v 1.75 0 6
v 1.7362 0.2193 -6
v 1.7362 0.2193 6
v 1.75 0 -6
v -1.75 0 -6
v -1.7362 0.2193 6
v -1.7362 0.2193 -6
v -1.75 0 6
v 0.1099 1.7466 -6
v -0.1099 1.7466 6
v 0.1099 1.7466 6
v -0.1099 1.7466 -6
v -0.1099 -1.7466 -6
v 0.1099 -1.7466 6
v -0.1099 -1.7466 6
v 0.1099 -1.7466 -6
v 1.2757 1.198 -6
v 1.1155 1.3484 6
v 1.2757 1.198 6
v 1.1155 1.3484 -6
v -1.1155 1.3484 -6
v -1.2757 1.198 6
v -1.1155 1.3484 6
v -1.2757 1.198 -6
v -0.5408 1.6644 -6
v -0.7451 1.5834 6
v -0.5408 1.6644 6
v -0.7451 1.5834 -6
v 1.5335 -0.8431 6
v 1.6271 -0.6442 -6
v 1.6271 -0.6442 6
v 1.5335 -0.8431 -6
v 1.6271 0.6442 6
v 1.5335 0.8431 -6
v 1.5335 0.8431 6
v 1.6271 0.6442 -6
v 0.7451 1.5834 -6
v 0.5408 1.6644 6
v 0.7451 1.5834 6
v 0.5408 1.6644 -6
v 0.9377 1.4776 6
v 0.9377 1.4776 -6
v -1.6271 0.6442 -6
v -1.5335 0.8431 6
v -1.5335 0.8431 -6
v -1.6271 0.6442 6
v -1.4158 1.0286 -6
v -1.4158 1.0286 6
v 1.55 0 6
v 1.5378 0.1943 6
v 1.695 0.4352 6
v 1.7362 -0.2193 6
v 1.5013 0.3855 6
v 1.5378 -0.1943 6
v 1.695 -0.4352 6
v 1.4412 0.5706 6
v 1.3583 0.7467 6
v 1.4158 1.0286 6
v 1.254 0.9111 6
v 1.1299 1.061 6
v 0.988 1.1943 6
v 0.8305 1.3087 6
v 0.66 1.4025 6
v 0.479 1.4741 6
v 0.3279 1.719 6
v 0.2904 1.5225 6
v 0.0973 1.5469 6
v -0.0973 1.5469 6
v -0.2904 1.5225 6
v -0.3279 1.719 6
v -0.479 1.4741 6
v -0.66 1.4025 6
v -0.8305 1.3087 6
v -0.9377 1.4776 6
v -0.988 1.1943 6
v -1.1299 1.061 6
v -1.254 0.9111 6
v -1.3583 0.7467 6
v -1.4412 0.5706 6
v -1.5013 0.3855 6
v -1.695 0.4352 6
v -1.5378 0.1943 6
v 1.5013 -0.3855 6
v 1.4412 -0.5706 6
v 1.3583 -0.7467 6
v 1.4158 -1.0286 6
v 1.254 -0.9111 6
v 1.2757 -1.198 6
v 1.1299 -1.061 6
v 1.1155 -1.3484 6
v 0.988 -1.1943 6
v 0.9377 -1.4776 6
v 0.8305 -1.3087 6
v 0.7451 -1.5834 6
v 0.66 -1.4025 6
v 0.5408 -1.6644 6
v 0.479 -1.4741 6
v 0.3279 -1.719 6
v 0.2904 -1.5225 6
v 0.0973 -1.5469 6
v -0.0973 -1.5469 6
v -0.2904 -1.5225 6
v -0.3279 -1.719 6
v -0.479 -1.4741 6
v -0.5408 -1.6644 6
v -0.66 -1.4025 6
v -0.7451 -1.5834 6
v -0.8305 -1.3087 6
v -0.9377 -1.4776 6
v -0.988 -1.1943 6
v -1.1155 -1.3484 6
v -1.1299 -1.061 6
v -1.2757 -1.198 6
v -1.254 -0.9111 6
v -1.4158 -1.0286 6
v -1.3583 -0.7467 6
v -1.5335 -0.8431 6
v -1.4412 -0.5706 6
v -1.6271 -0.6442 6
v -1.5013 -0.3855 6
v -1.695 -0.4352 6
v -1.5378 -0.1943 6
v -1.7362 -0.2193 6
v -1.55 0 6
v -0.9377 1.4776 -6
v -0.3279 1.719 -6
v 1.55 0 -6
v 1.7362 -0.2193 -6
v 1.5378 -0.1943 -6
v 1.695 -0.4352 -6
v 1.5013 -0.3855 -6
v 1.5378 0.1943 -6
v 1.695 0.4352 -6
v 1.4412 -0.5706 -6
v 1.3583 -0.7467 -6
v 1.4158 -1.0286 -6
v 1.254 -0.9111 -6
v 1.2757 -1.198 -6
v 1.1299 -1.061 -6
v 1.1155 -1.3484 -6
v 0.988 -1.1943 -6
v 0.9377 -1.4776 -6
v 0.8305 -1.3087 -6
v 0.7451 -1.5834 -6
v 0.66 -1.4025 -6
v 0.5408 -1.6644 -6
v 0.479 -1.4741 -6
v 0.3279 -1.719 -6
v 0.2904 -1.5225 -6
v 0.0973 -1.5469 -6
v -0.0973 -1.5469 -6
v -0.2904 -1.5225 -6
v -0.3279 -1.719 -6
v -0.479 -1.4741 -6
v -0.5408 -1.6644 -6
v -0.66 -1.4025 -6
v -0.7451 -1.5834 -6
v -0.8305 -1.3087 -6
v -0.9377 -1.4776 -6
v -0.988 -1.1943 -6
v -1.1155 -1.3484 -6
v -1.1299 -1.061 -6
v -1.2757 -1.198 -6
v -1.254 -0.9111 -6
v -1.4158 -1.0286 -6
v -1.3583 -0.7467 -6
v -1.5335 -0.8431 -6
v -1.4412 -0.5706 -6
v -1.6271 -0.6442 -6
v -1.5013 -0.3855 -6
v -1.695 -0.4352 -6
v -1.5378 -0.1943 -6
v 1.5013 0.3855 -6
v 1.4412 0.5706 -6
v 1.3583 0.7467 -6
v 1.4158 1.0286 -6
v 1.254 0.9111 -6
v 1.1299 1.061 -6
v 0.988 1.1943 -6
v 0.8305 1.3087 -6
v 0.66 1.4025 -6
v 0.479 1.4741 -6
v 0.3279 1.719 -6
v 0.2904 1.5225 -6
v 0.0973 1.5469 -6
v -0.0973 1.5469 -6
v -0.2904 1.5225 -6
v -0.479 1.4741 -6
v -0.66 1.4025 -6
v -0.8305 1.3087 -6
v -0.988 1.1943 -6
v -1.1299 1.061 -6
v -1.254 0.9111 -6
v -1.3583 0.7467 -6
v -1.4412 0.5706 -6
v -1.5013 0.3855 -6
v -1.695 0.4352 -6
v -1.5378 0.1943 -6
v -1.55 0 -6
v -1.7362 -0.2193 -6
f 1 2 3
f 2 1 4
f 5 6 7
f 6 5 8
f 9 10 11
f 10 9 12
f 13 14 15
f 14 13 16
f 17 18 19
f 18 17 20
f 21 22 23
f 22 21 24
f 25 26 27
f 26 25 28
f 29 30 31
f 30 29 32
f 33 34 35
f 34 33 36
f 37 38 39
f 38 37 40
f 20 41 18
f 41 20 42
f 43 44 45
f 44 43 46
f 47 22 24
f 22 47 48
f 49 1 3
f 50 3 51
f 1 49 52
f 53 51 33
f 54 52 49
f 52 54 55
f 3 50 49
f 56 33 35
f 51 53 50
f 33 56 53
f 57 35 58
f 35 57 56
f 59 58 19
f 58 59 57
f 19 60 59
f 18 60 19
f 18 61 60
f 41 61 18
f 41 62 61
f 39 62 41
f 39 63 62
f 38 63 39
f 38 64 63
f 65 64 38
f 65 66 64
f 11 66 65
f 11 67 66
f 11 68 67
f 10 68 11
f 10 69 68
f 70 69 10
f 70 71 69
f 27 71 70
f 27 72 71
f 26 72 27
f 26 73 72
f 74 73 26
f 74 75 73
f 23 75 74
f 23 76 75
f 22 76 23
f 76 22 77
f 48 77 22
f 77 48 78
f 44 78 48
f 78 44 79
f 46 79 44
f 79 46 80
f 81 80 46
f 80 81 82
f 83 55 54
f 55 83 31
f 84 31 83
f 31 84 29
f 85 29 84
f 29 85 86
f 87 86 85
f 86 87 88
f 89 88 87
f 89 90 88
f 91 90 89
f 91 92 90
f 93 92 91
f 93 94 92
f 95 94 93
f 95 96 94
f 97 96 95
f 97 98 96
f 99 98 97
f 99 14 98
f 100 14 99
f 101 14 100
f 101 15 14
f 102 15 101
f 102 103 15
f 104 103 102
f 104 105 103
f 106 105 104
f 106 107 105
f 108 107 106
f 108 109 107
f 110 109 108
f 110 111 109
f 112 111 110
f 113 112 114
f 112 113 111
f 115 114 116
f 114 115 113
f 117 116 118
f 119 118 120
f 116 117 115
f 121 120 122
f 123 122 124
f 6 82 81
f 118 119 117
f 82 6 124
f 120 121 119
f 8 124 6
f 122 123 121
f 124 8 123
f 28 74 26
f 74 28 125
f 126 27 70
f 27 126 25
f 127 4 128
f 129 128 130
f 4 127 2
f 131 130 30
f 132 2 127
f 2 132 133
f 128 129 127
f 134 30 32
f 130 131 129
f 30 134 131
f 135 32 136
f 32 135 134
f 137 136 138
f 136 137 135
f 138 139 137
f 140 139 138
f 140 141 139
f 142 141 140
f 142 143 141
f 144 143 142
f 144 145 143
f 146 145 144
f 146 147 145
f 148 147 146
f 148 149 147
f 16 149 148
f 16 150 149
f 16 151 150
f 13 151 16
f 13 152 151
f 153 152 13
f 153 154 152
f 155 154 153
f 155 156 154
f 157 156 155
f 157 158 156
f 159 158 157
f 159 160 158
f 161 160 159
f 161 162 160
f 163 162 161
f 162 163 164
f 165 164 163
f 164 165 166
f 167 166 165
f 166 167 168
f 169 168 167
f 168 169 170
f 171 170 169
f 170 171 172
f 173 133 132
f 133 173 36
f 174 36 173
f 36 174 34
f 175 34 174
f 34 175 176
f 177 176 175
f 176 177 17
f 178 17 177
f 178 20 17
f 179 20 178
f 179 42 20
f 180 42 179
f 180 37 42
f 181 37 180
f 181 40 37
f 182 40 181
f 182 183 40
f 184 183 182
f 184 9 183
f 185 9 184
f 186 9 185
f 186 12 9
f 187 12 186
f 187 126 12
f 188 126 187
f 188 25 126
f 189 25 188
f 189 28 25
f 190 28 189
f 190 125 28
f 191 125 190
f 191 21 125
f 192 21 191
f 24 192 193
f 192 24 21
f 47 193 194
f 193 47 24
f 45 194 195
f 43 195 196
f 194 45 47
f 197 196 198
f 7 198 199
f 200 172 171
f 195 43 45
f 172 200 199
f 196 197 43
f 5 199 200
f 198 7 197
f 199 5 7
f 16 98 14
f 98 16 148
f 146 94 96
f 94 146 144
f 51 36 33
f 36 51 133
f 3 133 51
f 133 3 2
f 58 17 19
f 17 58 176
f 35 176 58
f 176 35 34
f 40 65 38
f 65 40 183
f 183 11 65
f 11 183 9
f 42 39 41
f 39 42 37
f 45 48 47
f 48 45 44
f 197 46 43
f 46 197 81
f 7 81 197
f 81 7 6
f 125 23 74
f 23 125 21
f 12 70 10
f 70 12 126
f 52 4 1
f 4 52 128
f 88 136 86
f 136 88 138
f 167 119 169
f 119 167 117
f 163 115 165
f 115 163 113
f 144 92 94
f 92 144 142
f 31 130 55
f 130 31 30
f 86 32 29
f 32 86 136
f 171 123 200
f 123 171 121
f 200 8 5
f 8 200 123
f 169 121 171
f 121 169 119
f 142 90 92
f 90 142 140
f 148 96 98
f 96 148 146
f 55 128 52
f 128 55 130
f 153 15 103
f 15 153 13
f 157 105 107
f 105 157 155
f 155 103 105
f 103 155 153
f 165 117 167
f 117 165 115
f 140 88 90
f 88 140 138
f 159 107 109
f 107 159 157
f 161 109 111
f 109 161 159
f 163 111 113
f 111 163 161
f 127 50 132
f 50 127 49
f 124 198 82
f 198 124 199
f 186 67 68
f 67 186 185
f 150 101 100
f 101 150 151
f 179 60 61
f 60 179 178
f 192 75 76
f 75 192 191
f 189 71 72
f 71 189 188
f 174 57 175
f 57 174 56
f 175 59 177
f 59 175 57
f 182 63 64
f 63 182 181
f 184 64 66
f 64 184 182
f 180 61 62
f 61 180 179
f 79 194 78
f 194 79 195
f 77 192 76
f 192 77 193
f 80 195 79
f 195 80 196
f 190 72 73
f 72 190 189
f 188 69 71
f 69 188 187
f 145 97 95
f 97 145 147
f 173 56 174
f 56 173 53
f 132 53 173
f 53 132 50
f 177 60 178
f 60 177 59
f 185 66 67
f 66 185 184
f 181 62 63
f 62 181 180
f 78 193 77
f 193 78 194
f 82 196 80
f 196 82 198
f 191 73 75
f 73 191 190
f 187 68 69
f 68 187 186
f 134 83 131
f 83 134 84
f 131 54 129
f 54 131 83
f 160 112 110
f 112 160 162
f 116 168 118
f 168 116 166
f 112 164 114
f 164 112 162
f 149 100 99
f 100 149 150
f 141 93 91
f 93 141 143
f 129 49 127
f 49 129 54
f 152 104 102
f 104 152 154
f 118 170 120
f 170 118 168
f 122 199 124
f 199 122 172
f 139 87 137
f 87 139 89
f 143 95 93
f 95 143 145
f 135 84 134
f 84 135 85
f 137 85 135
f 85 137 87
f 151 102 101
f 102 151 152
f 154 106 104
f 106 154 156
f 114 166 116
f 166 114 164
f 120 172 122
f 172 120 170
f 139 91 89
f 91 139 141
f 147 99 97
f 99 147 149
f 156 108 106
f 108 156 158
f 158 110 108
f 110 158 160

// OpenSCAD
$fn = 50;


difference() {
	union() {
		translate(v = [0, 0, -6.0000000000]) {
			cylinder(h = 12, r = 1.7500000000);
		}
	}
	union() {
		translate(v = [0, 0, -100.0000000000]) {
			cylinder(h = 200, r = 1.5500000000);
		}
	}
}
